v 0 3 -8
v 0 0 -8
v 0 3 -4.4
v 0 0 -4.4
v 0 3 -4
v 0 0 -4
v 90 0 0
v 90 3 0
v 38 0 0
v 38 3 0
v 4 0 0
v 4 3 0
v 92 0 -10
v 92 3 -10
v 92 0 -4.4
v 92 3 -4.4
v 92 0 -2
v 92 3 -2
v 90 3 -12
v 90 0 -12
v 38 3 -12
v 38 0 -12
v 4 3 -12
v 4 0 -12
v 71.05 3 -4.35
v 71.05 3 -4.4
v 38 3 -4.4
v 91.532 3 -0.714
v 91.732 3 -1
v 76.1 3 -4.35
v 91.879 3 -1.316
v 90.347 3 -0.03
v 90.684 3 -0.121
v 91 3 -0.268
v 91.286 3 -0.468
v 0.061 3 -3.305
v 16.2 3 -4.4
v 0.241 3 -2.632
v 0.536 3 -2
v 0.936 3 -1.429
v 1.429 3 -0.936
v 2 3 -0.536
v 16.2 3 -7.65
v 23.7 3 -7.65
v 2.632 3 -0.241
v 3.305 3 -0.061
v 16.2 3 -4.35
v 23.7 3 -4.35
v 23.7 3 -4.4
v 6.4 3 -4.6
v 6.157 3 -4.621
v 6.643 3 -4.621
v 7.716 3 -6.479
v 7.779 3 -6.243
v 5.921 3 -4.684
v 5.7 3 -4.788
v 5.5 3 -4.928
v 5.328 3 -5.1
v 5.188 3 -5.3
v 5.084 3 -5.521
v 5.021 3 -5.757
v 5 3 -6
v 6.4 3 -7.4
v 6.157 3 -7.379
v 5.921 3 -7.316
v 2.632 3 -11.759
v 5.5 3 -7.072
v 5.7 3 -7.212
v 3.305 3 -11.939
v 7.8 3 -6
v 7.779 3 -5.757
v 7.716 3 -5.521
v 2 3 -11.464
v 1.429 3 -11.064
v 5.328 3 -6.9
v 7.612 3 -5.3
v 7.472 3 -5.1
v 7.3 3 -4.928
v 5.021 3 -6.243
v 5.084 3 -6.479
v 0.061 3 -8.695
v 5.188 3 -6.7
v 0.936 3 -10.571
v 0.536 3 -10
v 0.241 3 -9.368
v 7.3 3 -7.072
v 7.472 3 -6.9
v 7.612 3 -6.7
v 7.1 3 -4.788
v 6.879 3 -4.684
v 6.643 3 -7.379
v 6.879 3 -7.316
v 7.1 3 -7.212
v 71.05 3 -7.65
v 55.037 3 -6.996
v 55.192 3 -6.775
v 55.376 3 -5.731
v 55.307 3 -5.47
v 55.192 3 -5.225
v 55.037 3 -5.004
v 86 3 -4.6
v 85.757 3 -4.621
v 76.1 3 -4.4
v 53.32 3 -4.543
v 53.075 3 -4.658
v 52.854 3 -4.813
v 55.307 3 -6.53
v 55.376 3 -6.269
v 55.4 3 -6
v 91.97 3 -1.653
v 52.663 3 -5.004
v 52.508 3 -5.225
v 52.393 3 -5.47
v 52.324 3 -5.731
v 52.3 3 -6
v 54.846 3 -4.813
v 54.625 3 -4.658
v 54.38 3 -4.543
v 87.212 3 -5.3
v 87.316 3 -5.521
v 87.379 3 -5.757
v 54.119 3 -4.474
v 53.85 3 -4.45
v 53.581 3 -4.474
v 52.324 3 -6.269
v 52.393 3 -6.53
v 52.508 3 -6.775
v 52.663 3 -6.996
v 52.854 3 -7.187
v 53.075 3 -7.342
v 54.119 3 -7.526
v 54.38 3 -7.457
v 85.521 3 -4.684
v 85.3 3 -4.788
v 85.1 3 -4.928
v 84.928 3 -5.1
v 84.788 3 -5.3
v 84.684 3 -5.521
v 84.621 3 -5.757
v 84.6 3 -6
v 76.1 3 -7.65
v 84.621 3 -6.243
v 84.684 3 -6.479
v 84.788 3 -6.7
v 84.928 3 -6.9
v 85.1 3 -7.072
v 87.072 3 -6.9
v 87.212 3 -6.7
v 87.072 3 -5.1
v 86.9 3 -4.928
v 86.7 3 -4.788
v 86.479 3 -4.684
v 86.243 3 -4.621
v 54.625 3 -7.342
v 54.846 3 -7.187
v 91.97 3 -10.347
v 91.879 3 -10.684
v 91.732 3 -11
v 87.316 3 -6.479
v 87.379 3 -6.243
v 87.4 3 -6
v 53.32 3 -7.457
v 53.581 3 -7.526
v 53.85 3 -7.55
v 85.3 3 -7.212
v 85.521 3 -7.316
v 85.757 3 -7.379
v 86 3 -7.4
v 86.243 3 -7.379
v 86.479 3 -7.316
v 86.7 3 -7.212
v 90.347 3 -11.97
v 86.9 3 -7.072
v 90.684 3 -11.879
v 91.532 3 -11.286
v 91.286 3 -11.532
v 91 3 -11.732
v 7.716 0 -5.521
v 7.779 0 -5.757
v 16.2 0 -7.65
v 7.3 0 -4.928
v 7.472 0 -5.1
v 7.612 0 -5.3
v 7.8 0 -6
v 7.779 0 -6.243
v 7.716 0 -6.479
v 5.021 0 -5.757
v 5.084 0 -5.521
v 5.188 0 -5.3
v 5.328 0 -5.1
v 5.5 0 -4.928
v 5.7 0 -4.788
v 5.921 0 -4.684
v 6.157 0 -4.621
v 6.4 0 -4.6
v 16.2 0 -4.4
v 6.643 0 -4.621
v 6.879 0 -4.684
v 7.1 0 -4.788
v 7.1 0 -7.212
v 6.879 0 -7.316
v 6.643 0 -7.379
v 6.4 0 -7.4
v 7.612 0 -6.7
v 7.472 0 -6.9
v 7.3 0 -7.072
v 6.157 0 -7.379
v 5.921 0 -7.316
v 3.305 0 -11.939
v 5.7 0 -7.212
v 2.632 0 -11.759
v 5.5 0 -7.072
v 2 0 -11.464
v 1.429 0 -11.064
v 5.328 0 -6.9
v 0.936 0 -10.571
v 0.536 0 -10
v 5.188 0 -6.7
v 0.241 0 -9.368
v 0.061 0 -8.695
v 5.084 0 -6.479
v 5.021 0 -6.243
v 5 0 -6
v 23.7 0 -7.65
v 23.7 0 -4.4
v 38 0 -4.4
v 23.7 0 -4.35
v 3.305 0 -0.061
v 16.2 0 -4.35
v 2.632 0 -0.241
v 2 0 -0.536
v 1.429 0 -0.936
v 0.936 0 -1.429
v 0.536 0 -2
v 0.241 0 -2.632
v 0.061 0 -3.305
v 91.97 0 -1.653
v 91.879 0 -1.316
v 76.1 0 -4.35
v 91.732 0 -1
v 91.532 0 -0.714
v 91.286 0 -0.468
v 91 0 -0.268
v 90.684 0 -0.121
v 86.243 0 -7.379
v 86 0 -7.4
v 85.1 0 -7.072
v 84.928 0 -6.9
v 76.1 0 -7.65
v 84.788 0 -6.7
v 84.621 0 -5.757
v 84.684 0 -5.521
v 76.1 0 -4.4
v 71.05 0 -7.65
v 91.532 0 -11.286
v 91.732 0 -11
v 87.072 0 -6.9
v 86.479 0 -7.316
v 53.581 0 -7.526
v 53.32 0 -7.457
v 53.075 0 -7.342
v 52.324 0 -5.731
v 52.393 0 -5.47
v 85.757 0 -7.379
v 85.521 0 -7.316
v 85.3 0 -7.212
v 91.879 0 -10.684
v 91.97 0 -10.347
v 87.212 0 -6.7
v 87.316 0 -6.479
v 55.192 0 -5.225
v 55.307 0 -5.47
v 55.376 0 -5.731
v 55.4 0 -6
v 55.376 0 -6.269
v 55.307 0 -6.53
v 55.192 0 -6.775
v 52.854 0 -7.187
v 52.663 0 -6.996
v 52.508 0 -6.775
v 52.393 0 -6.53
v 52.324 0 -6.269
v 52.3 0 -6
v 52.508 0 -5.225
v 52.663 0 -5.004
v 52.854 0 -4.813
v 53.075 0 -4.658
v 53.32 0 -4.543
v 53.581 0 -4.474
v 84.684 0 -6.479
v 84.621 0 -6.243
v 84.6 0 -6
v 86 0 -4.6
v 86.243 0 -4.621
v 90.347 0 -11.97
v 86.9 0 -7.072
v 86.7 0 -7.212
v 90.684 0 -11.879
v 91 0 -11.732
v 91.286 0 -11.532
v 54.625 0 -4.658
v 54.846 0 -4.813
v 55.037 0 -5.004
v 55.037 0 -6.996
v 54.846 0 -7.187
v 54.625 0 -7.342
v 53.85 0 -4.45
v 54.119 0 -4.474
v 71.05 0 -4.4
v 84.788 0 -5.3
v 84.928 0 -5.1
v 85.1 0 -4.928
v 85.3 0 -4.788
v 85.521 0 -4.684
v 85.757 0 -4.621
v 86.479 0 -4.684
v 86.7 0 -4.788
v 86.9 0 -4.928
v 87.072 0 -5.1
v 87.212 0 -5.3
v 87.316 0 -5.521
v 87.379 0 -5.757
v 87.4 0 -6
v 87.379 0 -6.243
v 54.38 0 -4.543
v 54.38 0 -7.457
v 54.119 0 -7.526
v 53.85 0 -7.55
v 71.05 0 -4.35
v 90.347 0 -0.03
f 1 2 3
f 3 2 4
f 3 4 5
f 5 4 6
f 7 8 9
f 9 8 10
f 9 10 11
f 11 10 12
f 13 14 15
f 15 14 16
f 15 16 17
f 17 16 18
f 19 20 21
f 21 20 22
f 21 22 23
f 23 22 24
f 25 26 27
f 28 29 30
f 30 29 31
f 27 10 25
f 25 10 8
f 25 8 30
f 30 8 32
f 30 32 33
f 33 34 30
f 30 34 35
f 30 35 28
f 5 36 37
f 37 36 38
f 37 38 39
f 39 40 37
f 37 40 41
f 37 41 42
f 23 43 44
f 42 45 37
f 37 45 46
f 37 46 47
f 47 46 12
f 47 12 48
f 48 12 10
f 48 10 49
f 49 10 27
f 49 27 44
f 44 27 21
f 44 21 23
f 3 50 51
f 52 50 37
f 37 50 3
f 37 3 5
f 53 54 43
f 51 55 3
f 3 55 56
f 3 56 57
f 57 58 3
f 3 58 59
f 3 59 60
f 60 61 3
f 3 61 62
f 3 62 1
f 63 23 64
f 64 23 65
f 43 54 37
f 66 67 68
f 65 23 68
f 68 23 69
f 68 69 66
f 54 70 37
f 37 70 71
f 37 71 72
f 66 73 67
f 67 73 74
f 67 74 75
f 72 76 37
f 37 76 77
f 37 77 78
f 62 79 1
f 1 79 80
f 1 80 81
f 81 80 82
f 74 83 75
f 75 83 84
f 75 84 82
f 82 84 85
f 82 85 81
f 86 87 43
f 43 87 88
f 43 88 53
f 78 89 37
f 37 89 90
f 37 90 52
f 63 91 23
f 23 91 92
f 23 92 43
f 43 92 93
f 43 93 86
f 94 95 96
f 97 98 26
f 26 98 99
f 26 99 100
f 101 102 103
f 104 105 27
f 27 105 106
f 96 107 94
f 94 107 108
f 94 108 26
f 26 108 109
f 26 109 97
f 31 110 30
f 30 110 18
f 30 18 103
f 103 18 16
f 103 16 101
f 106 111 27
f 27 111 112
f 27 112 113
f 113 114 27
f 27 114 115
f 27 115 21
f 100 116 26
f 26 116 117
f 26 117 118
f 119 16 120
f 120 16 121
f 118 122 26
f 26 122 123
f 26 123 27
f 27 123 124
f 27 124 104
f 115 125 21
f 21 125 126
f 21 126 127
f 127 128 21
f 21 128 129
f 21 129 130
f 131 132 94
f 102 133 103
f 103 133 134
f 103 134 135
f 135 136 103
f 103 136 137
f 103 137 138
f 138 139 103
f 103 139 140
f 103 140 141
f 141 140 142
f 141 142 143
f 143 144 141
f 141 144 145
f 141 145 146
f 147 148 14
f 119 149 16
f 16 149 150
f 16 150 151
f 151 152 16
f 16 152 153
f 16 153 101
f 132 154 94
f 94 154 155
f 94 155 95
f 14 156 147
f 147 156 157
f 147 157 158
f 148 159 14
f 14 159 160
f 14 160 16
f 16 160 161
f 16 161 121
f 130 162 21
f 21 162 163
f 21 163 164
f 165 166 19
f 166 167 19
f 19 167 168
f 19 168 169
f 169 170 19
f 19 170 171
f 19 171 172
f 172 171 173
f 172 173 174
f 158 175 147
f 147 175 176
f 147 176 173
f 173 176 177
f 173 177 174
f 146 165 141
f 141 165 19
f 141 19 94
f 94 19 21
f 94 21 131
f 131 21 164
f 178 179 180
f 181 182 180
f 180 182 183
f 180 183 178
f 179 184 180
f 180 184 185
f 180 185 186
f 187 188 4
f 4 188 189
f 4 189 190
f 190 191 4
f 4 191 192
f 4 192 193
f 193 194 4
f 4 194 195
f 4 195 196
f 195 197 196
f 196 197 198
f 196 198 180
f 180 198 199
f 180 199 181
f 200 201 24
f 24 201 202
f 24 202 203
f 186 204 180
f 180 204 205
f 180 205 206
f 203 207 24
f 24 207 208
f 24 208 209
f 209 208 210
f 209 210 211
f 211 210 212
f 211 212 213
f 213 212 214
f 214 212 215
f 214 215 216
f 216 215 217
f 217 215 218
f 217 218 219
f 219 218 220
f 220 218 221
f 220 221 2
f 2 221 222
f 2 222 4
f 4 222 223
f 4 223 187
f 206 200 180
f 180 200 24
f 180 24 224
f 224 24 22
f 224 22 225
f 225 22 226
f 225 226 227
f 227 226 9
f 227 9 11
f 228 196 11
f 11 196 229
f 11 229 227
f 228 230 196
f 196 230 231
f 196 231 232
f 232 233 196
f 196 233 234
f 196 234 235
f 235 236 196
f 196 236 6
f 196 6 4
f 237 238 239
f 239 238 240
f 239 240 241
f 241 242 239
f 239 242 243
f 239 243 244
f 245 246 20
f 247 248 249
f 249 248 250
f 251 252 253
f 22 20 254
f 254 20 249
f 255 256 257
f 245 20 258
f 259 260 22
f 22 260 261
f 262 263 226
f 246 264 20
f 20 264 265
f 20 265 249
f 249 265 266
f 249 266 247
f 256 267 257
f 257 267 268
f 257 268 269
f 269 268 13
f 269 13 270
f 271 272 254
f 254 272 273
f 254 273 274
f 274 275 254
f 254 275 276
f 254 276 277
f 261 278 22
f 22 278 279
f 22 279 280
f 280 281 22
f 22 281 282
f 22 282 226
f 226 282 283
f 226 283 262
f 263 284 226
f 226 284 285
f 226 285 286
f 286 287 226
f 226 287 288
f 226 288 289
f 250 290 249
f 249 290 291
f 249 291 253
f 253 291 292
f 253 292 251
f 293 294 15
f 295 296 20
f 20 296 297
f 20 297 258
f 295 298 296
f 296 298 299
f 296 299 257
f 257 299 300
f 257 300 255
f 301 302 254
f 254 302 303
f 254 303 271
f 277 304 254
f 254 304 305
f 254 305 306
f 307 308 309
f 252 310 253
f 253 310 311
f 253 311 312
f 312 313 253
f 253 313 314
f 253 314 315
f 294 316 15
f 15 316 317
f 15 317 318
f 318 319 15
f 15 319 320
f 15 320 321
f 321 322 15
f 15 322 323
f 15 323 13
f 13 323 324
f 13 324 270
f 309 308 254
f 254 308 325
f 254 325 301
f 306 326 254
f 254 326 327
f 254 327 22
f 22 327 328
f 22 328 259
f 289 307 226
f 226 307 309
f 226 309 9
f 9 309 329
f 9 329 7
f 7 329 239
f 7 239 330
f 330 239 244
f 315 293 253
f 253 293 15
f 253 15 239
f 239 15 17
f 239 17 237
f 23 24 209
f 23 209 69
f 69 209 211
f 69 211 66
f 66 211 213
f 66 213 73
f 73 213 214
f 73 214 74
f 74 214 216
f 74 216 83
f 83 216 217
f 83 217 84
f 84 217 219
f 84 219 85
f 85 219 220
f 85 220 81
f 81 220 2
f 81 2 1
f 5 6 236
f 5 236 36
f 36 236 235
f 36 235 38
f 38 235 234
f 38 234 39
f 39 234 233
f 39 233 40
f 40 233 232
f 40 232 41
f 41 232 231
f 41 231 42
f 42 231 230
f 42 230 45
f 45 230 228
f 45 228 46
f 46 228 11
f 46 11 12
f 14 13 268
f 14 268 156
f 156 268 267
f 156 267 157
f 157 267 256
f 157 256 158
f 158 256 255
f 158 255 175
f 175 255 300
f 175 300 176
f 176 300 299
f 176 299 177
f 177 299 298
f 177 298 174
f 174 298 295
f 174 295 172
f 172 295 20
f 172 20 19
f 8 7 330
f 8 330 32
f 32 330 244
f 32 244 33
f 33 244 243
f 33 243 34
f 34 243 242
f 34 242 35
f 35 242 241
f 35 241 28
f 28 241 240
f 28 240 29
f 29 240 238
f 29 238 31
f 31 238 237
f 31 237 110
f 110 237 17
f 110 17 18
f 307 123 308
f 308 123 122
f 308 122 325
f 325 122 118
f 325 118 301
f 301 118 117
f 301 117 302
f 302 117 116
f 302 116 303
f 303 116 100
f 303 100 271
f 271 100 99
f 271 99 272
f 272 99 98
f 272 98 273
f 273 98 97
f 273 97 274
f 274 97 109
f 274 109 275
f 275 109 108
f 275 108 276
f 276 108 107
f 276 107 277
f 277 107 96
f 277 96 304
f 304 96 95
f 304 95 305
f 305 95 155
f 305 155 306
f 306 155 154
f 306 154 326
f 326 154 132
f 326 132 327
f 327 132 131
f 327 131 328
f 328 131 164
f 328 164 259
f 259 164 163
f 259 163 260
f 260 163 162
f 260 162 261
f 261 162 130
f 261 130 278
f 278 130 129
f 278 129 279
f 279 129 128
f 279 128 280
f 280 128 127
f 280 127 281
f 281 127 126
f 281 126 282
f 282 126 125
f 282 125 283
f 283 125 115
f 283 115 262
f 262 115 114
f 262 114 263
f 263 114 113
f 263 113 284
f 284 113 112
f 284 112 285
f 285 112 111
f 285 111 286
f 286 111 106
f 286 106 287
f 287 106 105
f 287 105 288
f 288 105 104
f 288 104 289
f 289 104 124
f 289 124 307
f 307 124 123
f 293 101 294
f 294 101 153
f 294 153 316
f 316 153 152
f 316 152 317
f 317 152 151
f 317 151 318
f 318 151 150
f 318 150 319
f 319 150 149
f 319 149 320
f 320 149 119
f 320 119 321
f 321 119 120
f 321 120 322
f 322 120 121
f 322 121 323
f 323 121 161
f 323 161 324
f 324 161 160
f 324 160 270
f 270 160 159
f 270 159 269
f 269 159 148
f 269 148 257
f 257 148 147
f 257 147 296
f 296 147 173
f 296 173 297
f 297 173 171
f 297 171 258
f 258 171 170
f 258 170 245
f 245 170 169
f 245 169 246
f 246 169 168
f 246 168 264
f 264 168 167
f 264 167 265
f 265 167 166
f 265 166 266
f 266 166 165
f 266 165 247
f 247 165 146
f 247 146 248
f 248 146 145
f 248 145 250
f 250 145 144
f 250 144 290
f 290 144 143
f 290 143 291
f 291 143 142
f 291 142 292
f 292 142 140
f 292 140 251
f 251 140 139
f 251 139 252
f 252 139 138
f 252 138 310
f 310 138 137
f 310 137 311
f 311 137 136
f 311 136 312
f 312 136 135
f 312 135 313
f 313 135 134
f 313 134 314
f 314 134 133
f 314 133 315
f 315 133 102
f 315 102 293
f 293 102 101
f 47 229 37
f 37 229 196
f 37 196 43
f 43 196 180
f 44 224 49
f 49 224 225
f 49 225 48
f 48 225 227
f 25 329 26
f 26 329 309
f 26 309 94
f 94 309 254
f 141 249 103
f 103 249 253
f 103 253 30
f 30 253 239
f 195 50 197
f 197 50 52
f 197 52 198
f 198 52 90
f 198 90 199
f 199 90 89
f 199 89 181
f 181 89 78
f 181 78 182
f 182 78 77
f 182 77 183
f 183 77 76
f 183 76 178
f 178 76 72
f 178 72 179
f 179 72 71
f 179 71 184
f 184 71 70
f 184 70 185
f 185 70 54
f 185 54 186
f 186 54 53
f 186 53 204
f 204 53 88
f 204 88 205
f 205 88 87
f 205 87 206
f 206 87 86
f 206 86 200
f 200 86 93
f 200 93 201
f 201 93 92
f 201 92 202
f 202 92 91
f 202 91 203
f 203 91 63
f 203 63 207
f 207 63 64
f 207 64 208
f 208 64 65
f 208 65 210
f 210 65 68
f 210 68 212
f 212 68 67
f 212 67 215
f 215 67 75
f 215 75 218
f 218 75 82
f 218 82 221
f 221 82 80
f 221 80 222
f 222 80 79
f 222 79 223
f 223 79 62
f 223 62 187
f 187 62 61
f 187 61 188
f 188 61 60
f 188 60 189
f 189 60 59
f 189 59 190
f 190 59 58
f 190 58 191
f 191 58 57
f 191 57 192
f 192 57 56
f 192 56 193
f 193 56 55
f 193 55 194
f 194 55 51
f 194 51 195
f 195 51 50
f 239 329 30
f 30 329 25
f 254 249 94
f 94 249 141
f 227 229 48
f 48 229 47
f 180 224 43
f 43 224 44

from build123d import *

# Parameters (mm, degrees)
SKETCH1_W           = 92
SKETCH1_H           = 12
BOSS_EXTRUDE1_DEPTH = 3
FILLET1_R           = 4
FILLET2_R           = 2
SKETCH2_R           = 1.4
SKETCH2_R_2         = 1.55
SKETCH2_W           = 7.5
SKETCH2_H           = 3
SKETCH2_W_2         = 5.05
CUT_EXTRUDE1_DEPTH  = 4
SKETCH3_W           = 7.5
SKETCH3_H           = 0.15
SKETCH3_W_2         = 5.05
CUT_EXTRUDE2_DEPTH  = 4


with BuildPart() as part:
    # Sketch1 → Boss-Extrude1 (new body)
    with BuildSketch(Plane(origin=(0, 0, 0), x_dir=(1, 0, 0), z_dir=(0, 1, 0))):
        with Locations((46, 6)):
            Rectangle(SKETCH1_W, SKETCH1_H)
    extrude(amount=BOSS_EXTRUDE1_DEPTH)

    # Fillet1
    fillet1_edges = [part.edges().sort_by_distance(p)[0] for p in [
        (0, 1.5, -12),
        (0, 1.5, 0),
    ]]
    fillet(fillet1_edges, radius=FILLET1_R)

    # Fillet2
    fillet2_edges = [part.edges().sort_by_distance(p)[0] for p in [
        (92, 1.5, -12),
        (92, 1.5, 0),
    ]]
    fillet(fillet2_edges, radius=FILLET2_R)

    # Sketch2 → Cut-Extrude1 (cut, through all)
    with BuildSketch(Plane(origin=(0, 3, 0), x_dir=(1, 0, 0), z_dir=(0, 1, 0))):
        with Locations((6.4, 6)):
            Circle(SKETCH2_R)
        with Locations((53.85, 6)):
            Circle(SKETCH2_R_2)
        with Locations((86, 6)):
            Circle(SKETCH2_R)
        with Locations((19.95, 6)):
            Rectangle(SKETCH2_W, SKETCH2_H)
        with Locations((73.575, 6)):
            Rectangle(SKETCH2_W_2, SKETCH2_H)
    extrude(amount=-CUT_EXTRUDE1_DEPTH, mode=Mode.SUBTRACT)

    # Sketch3 → Cut-Extrude2 (cut, through all)
    with BuildSketch(Plane(origin=(0, 3, 0), x_dir=(1, 0, 0), z_dir=(0, 1, 0))):
        with Locations((19.95, 7.575)):
            Rectangle(SKETCH3_W, SKETCH3_H)
        with Locations((19.95, 4.425)):
            Rectangle(SKETCH3_W, SKETCH3_H)
        with Locations((73.575, 7.575)):
            Rectangle(SKETCH3_W_2, SKETCH3_H)
        with Locations((73.575, 4.425)):
            Rectangle(SKETCH3_W_2, SKETCH3_H)
    extrude(amount=-CUT_EXTRUDE2_DEPTH, mode=Mode.SUBTRACT)


solid = part.part
